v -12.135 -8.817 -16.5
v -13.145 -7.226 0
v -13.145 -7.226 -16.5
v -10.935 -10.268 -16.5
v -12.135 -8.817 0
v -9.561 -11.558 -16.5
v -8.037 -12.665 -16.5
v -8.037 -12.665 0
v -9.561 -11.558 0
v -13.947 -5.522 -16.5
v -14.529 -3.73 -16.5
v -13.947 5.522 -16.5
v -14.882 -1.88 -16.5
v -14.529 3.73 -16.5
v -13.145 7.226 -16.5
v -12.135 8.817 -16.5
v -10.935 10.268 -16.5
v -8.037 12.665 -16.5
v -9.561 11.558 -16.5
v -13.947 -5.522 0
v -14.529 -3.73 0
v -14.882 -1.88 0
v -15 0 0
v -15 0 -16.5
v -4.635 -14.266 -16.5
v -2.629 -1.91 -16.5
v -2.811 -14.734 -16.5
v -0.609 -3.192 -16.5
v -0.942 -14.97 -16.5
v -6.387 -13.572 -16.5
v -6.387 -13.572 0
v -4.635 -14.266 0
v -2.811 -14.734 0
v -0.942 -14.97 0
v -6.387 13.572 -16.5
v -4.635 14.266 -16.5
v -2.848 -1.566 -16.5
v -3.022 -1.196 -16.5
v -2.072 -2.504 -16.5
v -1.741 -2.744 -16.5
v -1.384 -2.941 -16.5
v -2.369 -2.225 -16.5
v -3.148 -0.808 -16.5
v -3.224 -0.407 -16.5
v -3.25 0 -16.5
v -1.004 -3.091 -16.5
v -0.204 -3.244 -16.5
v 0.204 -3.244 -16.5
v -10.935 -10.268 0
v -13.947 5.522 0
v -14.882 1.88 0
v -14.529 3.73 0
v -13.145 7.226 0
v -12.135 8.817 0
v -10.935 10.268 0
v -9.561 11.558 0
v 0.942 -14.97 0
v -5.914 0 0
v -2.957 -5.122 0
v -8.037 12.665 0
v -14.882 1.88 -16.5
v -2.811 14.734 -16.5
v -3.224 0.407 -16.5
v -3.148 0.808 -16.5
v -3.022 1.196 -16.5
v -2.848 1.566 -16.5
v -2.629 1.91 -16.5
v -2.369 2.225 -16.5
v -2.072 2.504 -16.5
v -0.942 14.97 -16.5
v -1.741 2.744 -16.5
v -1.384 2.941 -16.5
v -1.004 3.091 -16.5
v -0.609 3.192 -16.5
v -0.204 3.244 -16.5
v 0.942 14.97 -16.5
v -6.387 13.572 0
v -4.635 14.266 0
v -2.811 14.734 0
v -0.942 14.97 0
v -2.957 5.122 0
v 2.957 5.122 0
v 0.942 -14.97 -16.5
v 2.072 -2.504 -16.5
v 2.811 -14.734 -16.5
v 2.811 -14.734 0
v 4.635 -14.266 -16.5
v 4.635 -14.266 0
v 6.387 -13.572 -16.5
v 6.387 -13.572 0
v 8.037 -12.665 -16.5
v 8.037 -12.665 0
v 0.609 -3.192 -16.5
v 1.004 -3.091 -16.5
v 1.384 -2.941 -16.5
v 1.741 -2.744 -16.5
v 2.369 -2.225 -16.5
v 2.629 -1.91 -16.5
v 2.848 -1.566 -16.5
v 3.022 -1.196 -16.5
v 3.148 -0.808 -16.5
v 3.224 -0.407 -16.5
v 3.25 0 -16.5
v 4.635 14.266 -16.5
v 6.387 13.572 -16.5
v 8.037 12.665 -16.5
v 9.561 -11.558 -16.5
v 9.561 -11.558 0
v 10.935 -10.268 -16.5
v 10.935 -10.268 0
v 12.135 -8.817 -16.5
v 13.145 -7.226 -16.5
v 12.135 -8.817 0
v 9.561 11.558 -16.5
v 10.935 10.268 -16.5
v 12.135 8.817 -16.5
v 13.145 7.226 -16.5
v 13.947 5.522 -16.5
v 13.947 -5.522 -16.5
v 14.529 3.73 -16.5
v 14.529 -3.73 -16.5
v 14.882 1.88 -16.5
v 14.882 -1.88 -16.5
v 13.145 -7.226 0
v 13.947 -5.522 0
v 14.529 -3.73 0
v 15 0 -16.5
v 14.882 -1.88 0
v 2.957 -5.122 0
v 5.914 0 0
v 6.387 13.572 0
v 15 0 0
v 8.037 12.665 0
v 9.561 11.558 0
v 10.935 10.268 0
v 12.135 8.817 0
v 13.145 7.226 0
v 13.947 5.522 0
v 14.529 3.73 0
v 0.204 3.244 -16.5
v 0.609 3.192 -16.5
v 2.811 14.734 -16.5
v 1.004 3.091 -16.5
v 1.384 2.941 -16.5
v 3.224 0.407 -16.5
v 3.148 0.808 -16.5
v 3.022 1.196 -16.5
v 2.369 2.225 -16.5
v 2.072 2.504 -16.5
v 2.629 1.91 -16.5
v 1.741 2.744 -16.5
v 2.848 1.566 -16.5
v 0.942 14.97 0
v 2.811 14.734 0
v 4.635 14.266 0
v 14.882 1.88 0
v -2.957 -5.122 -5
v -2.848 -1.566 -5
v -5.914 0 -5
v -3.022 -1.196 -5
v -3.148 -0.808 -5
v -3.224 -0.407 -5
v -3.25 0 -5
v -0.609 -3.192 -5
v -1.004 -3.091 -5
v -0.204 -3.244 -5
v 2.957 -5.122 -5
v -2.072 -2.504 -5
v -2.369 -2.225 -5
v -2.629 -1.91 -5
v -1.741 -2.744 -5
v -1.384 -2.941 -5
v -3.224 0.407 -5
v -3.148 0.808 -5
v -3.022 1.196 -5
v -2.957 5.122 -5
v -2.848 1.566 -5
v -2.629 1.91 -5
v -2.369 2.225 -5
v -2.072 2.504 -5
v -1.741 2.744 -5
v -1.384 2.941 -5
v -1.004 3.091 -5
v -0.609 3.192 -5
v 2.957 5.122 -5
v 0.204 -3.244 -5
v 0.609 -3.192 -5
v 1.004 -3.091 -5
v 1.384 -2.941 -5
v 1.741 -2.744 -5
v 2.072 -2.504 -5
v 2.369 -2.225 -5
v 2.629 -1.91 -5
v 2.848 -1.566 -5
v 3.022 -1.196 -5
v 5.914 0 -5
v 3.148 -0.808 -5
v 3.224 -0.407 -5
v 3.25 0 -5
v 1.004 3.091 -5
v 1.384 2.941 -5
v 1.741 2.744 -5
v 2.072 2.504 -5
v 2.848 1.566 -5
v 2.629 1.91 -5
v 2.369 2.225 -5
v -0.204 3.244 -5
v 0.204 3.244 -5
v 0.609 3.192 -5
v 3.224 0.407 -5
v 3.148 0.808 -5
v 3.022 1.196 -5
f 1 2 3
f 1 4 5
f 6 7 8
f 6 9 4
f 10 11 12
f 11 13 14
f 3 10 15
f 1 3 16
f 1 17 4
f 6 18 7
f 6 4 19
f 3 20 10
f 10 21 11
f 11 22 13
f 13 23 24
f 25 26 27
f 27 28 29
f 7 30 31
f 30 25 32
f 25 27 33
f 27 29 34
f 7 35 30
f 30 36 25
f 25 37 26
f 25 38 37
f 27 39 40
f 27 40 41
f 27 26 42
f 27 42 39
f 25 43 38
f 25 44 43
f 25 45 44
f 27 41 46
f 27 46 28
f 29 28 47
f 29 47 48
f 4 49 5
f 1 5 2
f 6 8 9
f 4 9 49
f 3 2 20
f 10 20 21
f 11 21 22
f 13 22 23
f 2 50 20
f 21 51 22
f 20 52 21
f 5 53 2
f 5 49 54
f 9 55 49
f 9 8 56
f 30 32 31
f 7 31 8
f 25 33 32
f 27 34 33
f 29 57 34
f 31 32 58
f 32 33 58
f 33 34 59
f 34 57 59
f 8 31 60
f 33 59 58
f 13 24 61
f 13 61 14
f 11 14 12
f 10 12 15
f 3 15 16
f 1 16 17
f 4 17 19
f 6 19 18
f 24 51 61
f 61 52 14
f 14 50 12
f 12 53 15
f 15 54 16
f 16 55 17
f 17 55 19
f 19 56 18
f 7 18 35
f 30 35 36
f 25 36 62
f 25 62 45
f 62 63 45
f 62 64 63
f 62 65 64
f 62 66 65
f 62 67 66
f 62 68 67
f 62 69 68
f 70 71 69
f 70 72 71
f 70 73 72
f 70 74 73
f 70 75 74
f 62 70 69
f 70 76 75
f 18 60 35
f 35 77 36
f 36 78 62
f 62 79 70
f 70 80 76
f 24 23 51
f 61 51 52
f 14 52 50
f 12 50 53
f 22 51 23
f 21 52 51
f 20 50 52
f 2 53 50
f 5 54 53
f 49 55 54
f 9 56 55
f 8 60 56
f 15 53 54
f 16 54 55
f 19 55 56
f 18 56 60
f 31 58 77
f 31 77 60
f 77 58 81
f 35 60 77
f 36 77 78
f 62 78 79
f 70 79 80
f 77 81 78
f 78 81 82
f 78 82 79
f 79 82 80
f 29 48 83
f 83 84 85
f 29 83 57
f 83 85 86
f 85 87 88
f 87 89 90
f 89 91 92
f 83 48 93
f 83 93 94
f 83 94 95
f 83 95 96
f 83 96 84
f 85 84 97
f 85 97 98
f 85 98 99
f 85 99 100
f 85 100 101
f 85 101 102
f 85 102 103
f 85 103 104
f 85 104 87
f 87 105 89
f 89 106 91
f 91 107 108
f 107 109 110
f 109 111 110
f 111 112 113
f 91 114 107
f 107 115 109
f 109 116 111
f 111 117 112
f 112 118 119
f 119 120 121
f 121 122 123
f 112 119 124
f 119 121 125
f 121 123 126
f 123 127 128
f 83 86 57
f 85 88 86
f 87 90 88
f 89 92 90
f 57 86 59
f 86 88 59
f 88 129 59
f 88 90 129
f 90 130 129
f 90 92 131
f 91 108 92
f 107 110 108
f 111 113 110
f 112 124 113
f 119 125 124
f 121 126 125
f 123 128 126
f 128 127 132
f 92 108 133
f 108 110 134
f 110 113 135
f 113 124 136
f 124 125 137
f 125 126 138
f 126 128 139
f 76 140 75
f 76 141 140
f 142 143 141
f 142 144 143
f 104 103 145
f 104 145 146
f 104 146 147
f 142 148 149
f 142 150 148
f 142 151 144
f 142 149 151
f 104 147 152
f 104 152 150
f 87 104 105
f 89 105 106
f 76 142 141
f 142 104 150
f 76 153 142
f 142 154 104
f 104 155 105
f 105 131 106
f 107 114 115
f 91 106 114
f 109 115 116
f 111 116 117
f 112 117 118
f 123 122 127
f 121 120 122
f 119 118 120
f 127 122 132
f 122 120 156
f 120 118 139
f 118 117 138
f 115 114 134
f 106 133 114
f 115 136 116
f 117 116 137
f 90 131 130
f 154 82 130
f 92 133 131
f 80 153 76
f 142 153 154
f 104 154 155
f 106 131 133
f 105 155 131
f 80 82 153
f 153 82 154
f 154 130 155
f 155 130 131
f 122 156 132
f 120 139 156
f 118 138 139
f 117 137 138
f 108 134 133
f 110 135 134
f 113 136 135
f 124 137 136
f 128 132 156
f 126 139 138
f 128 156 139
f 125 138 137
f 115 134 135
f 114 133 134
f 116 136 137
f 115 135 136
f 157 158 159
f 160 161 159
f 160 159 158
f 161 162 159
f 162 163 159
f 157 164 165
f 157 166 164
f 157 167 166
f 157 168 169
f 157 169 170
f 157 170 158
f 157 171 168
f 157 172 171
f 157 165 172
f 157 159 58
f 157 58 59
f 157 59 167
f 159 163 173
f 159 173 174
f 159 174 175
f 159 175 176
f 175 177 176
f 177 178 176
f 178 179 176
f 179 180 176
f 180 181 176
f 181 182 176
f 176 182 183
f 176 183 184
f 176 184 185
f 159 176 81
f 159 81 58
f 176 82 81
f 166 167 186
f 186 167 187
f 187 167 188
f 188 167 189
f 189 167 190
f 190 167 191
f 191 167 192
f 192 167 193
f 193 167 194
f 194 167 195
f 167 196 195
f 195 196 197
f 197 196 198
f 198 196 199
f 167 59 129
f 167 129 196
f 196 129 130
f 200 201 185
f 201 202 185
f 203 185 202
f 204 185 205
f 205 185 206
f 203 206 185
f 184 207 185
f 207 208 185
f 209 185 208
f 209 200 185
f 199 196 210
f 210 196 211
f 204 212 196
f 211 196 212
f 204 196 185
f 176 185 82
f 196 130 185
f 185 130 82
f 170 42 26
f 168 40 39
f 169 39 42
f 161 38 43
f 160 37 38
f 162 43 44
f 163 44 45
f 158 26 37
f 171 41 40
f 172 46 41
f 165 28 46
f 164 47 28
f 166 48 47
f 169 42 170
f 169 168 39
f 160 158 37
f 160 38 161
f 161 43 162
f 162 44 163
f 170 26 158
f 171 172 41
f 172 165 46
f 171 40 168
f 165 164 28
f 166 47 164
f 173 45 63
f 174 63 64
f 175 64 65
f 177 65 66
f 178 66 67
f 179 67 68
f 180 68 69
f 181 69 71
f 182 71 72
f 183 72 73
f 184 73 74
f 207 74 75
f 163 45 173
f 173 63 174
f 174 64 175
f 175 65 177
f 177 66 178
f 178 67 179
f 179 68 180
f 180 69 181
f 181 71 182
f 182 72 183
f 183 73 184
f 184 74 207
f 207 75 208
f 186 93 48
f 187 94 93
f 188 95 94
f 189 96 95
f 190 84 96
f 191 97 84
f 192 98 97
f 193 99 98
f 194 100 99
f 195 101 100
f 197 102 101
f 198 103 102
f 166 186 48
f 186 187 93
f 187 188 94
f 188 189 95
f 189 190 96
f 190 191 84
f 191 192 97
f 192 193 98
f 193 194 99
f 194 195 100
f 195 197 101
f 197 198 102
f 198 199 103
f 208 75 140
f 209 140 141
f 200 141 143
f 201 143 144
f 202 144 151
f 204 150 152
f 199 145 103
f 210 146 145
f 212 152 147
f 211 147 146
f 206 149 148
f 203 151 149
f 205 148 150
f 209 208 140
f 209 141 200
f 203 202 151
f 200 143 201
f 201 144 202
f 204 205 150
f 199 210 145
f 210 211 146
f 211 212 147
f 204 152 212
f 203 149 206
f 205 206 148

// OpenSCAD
$fn = 50;


difference() {
	union() {
		translate(v = [0, 0, -16.5000000000]) {
			cylinder(h = 16.5000000000, r = 15.0000000000);
		}
		#translate(v = [0, 0, -18.0000000000]) {
			cylinder(h = 18, r = 2.8750000000);
		}
	}
	union() {
		translate(v = [0, 0, 0]) {
			rotate(a = [0, 0, 0]) {
				difference() {
					union() {
						translate(v = [0, 0, -5]) {
							linear_extrude(height = 5) {
								polygon(points = [[5.9142500000, 0.0000000000], [2.9571250000, 5.1218907443], [-2.9571250000, 5.1218907443], [-5.9142500000, 0.0000000000], [-2.9571250000, -5.1218907443], [2.9571250000, -5.1218907443]]);
							}
						}
					}
					union();
				}
			}
		}
		#translate(v = [0, 0, -100.0000000000]) {
			cylinder(h = 200, r = 3.2500000000);
		}
	}
}
